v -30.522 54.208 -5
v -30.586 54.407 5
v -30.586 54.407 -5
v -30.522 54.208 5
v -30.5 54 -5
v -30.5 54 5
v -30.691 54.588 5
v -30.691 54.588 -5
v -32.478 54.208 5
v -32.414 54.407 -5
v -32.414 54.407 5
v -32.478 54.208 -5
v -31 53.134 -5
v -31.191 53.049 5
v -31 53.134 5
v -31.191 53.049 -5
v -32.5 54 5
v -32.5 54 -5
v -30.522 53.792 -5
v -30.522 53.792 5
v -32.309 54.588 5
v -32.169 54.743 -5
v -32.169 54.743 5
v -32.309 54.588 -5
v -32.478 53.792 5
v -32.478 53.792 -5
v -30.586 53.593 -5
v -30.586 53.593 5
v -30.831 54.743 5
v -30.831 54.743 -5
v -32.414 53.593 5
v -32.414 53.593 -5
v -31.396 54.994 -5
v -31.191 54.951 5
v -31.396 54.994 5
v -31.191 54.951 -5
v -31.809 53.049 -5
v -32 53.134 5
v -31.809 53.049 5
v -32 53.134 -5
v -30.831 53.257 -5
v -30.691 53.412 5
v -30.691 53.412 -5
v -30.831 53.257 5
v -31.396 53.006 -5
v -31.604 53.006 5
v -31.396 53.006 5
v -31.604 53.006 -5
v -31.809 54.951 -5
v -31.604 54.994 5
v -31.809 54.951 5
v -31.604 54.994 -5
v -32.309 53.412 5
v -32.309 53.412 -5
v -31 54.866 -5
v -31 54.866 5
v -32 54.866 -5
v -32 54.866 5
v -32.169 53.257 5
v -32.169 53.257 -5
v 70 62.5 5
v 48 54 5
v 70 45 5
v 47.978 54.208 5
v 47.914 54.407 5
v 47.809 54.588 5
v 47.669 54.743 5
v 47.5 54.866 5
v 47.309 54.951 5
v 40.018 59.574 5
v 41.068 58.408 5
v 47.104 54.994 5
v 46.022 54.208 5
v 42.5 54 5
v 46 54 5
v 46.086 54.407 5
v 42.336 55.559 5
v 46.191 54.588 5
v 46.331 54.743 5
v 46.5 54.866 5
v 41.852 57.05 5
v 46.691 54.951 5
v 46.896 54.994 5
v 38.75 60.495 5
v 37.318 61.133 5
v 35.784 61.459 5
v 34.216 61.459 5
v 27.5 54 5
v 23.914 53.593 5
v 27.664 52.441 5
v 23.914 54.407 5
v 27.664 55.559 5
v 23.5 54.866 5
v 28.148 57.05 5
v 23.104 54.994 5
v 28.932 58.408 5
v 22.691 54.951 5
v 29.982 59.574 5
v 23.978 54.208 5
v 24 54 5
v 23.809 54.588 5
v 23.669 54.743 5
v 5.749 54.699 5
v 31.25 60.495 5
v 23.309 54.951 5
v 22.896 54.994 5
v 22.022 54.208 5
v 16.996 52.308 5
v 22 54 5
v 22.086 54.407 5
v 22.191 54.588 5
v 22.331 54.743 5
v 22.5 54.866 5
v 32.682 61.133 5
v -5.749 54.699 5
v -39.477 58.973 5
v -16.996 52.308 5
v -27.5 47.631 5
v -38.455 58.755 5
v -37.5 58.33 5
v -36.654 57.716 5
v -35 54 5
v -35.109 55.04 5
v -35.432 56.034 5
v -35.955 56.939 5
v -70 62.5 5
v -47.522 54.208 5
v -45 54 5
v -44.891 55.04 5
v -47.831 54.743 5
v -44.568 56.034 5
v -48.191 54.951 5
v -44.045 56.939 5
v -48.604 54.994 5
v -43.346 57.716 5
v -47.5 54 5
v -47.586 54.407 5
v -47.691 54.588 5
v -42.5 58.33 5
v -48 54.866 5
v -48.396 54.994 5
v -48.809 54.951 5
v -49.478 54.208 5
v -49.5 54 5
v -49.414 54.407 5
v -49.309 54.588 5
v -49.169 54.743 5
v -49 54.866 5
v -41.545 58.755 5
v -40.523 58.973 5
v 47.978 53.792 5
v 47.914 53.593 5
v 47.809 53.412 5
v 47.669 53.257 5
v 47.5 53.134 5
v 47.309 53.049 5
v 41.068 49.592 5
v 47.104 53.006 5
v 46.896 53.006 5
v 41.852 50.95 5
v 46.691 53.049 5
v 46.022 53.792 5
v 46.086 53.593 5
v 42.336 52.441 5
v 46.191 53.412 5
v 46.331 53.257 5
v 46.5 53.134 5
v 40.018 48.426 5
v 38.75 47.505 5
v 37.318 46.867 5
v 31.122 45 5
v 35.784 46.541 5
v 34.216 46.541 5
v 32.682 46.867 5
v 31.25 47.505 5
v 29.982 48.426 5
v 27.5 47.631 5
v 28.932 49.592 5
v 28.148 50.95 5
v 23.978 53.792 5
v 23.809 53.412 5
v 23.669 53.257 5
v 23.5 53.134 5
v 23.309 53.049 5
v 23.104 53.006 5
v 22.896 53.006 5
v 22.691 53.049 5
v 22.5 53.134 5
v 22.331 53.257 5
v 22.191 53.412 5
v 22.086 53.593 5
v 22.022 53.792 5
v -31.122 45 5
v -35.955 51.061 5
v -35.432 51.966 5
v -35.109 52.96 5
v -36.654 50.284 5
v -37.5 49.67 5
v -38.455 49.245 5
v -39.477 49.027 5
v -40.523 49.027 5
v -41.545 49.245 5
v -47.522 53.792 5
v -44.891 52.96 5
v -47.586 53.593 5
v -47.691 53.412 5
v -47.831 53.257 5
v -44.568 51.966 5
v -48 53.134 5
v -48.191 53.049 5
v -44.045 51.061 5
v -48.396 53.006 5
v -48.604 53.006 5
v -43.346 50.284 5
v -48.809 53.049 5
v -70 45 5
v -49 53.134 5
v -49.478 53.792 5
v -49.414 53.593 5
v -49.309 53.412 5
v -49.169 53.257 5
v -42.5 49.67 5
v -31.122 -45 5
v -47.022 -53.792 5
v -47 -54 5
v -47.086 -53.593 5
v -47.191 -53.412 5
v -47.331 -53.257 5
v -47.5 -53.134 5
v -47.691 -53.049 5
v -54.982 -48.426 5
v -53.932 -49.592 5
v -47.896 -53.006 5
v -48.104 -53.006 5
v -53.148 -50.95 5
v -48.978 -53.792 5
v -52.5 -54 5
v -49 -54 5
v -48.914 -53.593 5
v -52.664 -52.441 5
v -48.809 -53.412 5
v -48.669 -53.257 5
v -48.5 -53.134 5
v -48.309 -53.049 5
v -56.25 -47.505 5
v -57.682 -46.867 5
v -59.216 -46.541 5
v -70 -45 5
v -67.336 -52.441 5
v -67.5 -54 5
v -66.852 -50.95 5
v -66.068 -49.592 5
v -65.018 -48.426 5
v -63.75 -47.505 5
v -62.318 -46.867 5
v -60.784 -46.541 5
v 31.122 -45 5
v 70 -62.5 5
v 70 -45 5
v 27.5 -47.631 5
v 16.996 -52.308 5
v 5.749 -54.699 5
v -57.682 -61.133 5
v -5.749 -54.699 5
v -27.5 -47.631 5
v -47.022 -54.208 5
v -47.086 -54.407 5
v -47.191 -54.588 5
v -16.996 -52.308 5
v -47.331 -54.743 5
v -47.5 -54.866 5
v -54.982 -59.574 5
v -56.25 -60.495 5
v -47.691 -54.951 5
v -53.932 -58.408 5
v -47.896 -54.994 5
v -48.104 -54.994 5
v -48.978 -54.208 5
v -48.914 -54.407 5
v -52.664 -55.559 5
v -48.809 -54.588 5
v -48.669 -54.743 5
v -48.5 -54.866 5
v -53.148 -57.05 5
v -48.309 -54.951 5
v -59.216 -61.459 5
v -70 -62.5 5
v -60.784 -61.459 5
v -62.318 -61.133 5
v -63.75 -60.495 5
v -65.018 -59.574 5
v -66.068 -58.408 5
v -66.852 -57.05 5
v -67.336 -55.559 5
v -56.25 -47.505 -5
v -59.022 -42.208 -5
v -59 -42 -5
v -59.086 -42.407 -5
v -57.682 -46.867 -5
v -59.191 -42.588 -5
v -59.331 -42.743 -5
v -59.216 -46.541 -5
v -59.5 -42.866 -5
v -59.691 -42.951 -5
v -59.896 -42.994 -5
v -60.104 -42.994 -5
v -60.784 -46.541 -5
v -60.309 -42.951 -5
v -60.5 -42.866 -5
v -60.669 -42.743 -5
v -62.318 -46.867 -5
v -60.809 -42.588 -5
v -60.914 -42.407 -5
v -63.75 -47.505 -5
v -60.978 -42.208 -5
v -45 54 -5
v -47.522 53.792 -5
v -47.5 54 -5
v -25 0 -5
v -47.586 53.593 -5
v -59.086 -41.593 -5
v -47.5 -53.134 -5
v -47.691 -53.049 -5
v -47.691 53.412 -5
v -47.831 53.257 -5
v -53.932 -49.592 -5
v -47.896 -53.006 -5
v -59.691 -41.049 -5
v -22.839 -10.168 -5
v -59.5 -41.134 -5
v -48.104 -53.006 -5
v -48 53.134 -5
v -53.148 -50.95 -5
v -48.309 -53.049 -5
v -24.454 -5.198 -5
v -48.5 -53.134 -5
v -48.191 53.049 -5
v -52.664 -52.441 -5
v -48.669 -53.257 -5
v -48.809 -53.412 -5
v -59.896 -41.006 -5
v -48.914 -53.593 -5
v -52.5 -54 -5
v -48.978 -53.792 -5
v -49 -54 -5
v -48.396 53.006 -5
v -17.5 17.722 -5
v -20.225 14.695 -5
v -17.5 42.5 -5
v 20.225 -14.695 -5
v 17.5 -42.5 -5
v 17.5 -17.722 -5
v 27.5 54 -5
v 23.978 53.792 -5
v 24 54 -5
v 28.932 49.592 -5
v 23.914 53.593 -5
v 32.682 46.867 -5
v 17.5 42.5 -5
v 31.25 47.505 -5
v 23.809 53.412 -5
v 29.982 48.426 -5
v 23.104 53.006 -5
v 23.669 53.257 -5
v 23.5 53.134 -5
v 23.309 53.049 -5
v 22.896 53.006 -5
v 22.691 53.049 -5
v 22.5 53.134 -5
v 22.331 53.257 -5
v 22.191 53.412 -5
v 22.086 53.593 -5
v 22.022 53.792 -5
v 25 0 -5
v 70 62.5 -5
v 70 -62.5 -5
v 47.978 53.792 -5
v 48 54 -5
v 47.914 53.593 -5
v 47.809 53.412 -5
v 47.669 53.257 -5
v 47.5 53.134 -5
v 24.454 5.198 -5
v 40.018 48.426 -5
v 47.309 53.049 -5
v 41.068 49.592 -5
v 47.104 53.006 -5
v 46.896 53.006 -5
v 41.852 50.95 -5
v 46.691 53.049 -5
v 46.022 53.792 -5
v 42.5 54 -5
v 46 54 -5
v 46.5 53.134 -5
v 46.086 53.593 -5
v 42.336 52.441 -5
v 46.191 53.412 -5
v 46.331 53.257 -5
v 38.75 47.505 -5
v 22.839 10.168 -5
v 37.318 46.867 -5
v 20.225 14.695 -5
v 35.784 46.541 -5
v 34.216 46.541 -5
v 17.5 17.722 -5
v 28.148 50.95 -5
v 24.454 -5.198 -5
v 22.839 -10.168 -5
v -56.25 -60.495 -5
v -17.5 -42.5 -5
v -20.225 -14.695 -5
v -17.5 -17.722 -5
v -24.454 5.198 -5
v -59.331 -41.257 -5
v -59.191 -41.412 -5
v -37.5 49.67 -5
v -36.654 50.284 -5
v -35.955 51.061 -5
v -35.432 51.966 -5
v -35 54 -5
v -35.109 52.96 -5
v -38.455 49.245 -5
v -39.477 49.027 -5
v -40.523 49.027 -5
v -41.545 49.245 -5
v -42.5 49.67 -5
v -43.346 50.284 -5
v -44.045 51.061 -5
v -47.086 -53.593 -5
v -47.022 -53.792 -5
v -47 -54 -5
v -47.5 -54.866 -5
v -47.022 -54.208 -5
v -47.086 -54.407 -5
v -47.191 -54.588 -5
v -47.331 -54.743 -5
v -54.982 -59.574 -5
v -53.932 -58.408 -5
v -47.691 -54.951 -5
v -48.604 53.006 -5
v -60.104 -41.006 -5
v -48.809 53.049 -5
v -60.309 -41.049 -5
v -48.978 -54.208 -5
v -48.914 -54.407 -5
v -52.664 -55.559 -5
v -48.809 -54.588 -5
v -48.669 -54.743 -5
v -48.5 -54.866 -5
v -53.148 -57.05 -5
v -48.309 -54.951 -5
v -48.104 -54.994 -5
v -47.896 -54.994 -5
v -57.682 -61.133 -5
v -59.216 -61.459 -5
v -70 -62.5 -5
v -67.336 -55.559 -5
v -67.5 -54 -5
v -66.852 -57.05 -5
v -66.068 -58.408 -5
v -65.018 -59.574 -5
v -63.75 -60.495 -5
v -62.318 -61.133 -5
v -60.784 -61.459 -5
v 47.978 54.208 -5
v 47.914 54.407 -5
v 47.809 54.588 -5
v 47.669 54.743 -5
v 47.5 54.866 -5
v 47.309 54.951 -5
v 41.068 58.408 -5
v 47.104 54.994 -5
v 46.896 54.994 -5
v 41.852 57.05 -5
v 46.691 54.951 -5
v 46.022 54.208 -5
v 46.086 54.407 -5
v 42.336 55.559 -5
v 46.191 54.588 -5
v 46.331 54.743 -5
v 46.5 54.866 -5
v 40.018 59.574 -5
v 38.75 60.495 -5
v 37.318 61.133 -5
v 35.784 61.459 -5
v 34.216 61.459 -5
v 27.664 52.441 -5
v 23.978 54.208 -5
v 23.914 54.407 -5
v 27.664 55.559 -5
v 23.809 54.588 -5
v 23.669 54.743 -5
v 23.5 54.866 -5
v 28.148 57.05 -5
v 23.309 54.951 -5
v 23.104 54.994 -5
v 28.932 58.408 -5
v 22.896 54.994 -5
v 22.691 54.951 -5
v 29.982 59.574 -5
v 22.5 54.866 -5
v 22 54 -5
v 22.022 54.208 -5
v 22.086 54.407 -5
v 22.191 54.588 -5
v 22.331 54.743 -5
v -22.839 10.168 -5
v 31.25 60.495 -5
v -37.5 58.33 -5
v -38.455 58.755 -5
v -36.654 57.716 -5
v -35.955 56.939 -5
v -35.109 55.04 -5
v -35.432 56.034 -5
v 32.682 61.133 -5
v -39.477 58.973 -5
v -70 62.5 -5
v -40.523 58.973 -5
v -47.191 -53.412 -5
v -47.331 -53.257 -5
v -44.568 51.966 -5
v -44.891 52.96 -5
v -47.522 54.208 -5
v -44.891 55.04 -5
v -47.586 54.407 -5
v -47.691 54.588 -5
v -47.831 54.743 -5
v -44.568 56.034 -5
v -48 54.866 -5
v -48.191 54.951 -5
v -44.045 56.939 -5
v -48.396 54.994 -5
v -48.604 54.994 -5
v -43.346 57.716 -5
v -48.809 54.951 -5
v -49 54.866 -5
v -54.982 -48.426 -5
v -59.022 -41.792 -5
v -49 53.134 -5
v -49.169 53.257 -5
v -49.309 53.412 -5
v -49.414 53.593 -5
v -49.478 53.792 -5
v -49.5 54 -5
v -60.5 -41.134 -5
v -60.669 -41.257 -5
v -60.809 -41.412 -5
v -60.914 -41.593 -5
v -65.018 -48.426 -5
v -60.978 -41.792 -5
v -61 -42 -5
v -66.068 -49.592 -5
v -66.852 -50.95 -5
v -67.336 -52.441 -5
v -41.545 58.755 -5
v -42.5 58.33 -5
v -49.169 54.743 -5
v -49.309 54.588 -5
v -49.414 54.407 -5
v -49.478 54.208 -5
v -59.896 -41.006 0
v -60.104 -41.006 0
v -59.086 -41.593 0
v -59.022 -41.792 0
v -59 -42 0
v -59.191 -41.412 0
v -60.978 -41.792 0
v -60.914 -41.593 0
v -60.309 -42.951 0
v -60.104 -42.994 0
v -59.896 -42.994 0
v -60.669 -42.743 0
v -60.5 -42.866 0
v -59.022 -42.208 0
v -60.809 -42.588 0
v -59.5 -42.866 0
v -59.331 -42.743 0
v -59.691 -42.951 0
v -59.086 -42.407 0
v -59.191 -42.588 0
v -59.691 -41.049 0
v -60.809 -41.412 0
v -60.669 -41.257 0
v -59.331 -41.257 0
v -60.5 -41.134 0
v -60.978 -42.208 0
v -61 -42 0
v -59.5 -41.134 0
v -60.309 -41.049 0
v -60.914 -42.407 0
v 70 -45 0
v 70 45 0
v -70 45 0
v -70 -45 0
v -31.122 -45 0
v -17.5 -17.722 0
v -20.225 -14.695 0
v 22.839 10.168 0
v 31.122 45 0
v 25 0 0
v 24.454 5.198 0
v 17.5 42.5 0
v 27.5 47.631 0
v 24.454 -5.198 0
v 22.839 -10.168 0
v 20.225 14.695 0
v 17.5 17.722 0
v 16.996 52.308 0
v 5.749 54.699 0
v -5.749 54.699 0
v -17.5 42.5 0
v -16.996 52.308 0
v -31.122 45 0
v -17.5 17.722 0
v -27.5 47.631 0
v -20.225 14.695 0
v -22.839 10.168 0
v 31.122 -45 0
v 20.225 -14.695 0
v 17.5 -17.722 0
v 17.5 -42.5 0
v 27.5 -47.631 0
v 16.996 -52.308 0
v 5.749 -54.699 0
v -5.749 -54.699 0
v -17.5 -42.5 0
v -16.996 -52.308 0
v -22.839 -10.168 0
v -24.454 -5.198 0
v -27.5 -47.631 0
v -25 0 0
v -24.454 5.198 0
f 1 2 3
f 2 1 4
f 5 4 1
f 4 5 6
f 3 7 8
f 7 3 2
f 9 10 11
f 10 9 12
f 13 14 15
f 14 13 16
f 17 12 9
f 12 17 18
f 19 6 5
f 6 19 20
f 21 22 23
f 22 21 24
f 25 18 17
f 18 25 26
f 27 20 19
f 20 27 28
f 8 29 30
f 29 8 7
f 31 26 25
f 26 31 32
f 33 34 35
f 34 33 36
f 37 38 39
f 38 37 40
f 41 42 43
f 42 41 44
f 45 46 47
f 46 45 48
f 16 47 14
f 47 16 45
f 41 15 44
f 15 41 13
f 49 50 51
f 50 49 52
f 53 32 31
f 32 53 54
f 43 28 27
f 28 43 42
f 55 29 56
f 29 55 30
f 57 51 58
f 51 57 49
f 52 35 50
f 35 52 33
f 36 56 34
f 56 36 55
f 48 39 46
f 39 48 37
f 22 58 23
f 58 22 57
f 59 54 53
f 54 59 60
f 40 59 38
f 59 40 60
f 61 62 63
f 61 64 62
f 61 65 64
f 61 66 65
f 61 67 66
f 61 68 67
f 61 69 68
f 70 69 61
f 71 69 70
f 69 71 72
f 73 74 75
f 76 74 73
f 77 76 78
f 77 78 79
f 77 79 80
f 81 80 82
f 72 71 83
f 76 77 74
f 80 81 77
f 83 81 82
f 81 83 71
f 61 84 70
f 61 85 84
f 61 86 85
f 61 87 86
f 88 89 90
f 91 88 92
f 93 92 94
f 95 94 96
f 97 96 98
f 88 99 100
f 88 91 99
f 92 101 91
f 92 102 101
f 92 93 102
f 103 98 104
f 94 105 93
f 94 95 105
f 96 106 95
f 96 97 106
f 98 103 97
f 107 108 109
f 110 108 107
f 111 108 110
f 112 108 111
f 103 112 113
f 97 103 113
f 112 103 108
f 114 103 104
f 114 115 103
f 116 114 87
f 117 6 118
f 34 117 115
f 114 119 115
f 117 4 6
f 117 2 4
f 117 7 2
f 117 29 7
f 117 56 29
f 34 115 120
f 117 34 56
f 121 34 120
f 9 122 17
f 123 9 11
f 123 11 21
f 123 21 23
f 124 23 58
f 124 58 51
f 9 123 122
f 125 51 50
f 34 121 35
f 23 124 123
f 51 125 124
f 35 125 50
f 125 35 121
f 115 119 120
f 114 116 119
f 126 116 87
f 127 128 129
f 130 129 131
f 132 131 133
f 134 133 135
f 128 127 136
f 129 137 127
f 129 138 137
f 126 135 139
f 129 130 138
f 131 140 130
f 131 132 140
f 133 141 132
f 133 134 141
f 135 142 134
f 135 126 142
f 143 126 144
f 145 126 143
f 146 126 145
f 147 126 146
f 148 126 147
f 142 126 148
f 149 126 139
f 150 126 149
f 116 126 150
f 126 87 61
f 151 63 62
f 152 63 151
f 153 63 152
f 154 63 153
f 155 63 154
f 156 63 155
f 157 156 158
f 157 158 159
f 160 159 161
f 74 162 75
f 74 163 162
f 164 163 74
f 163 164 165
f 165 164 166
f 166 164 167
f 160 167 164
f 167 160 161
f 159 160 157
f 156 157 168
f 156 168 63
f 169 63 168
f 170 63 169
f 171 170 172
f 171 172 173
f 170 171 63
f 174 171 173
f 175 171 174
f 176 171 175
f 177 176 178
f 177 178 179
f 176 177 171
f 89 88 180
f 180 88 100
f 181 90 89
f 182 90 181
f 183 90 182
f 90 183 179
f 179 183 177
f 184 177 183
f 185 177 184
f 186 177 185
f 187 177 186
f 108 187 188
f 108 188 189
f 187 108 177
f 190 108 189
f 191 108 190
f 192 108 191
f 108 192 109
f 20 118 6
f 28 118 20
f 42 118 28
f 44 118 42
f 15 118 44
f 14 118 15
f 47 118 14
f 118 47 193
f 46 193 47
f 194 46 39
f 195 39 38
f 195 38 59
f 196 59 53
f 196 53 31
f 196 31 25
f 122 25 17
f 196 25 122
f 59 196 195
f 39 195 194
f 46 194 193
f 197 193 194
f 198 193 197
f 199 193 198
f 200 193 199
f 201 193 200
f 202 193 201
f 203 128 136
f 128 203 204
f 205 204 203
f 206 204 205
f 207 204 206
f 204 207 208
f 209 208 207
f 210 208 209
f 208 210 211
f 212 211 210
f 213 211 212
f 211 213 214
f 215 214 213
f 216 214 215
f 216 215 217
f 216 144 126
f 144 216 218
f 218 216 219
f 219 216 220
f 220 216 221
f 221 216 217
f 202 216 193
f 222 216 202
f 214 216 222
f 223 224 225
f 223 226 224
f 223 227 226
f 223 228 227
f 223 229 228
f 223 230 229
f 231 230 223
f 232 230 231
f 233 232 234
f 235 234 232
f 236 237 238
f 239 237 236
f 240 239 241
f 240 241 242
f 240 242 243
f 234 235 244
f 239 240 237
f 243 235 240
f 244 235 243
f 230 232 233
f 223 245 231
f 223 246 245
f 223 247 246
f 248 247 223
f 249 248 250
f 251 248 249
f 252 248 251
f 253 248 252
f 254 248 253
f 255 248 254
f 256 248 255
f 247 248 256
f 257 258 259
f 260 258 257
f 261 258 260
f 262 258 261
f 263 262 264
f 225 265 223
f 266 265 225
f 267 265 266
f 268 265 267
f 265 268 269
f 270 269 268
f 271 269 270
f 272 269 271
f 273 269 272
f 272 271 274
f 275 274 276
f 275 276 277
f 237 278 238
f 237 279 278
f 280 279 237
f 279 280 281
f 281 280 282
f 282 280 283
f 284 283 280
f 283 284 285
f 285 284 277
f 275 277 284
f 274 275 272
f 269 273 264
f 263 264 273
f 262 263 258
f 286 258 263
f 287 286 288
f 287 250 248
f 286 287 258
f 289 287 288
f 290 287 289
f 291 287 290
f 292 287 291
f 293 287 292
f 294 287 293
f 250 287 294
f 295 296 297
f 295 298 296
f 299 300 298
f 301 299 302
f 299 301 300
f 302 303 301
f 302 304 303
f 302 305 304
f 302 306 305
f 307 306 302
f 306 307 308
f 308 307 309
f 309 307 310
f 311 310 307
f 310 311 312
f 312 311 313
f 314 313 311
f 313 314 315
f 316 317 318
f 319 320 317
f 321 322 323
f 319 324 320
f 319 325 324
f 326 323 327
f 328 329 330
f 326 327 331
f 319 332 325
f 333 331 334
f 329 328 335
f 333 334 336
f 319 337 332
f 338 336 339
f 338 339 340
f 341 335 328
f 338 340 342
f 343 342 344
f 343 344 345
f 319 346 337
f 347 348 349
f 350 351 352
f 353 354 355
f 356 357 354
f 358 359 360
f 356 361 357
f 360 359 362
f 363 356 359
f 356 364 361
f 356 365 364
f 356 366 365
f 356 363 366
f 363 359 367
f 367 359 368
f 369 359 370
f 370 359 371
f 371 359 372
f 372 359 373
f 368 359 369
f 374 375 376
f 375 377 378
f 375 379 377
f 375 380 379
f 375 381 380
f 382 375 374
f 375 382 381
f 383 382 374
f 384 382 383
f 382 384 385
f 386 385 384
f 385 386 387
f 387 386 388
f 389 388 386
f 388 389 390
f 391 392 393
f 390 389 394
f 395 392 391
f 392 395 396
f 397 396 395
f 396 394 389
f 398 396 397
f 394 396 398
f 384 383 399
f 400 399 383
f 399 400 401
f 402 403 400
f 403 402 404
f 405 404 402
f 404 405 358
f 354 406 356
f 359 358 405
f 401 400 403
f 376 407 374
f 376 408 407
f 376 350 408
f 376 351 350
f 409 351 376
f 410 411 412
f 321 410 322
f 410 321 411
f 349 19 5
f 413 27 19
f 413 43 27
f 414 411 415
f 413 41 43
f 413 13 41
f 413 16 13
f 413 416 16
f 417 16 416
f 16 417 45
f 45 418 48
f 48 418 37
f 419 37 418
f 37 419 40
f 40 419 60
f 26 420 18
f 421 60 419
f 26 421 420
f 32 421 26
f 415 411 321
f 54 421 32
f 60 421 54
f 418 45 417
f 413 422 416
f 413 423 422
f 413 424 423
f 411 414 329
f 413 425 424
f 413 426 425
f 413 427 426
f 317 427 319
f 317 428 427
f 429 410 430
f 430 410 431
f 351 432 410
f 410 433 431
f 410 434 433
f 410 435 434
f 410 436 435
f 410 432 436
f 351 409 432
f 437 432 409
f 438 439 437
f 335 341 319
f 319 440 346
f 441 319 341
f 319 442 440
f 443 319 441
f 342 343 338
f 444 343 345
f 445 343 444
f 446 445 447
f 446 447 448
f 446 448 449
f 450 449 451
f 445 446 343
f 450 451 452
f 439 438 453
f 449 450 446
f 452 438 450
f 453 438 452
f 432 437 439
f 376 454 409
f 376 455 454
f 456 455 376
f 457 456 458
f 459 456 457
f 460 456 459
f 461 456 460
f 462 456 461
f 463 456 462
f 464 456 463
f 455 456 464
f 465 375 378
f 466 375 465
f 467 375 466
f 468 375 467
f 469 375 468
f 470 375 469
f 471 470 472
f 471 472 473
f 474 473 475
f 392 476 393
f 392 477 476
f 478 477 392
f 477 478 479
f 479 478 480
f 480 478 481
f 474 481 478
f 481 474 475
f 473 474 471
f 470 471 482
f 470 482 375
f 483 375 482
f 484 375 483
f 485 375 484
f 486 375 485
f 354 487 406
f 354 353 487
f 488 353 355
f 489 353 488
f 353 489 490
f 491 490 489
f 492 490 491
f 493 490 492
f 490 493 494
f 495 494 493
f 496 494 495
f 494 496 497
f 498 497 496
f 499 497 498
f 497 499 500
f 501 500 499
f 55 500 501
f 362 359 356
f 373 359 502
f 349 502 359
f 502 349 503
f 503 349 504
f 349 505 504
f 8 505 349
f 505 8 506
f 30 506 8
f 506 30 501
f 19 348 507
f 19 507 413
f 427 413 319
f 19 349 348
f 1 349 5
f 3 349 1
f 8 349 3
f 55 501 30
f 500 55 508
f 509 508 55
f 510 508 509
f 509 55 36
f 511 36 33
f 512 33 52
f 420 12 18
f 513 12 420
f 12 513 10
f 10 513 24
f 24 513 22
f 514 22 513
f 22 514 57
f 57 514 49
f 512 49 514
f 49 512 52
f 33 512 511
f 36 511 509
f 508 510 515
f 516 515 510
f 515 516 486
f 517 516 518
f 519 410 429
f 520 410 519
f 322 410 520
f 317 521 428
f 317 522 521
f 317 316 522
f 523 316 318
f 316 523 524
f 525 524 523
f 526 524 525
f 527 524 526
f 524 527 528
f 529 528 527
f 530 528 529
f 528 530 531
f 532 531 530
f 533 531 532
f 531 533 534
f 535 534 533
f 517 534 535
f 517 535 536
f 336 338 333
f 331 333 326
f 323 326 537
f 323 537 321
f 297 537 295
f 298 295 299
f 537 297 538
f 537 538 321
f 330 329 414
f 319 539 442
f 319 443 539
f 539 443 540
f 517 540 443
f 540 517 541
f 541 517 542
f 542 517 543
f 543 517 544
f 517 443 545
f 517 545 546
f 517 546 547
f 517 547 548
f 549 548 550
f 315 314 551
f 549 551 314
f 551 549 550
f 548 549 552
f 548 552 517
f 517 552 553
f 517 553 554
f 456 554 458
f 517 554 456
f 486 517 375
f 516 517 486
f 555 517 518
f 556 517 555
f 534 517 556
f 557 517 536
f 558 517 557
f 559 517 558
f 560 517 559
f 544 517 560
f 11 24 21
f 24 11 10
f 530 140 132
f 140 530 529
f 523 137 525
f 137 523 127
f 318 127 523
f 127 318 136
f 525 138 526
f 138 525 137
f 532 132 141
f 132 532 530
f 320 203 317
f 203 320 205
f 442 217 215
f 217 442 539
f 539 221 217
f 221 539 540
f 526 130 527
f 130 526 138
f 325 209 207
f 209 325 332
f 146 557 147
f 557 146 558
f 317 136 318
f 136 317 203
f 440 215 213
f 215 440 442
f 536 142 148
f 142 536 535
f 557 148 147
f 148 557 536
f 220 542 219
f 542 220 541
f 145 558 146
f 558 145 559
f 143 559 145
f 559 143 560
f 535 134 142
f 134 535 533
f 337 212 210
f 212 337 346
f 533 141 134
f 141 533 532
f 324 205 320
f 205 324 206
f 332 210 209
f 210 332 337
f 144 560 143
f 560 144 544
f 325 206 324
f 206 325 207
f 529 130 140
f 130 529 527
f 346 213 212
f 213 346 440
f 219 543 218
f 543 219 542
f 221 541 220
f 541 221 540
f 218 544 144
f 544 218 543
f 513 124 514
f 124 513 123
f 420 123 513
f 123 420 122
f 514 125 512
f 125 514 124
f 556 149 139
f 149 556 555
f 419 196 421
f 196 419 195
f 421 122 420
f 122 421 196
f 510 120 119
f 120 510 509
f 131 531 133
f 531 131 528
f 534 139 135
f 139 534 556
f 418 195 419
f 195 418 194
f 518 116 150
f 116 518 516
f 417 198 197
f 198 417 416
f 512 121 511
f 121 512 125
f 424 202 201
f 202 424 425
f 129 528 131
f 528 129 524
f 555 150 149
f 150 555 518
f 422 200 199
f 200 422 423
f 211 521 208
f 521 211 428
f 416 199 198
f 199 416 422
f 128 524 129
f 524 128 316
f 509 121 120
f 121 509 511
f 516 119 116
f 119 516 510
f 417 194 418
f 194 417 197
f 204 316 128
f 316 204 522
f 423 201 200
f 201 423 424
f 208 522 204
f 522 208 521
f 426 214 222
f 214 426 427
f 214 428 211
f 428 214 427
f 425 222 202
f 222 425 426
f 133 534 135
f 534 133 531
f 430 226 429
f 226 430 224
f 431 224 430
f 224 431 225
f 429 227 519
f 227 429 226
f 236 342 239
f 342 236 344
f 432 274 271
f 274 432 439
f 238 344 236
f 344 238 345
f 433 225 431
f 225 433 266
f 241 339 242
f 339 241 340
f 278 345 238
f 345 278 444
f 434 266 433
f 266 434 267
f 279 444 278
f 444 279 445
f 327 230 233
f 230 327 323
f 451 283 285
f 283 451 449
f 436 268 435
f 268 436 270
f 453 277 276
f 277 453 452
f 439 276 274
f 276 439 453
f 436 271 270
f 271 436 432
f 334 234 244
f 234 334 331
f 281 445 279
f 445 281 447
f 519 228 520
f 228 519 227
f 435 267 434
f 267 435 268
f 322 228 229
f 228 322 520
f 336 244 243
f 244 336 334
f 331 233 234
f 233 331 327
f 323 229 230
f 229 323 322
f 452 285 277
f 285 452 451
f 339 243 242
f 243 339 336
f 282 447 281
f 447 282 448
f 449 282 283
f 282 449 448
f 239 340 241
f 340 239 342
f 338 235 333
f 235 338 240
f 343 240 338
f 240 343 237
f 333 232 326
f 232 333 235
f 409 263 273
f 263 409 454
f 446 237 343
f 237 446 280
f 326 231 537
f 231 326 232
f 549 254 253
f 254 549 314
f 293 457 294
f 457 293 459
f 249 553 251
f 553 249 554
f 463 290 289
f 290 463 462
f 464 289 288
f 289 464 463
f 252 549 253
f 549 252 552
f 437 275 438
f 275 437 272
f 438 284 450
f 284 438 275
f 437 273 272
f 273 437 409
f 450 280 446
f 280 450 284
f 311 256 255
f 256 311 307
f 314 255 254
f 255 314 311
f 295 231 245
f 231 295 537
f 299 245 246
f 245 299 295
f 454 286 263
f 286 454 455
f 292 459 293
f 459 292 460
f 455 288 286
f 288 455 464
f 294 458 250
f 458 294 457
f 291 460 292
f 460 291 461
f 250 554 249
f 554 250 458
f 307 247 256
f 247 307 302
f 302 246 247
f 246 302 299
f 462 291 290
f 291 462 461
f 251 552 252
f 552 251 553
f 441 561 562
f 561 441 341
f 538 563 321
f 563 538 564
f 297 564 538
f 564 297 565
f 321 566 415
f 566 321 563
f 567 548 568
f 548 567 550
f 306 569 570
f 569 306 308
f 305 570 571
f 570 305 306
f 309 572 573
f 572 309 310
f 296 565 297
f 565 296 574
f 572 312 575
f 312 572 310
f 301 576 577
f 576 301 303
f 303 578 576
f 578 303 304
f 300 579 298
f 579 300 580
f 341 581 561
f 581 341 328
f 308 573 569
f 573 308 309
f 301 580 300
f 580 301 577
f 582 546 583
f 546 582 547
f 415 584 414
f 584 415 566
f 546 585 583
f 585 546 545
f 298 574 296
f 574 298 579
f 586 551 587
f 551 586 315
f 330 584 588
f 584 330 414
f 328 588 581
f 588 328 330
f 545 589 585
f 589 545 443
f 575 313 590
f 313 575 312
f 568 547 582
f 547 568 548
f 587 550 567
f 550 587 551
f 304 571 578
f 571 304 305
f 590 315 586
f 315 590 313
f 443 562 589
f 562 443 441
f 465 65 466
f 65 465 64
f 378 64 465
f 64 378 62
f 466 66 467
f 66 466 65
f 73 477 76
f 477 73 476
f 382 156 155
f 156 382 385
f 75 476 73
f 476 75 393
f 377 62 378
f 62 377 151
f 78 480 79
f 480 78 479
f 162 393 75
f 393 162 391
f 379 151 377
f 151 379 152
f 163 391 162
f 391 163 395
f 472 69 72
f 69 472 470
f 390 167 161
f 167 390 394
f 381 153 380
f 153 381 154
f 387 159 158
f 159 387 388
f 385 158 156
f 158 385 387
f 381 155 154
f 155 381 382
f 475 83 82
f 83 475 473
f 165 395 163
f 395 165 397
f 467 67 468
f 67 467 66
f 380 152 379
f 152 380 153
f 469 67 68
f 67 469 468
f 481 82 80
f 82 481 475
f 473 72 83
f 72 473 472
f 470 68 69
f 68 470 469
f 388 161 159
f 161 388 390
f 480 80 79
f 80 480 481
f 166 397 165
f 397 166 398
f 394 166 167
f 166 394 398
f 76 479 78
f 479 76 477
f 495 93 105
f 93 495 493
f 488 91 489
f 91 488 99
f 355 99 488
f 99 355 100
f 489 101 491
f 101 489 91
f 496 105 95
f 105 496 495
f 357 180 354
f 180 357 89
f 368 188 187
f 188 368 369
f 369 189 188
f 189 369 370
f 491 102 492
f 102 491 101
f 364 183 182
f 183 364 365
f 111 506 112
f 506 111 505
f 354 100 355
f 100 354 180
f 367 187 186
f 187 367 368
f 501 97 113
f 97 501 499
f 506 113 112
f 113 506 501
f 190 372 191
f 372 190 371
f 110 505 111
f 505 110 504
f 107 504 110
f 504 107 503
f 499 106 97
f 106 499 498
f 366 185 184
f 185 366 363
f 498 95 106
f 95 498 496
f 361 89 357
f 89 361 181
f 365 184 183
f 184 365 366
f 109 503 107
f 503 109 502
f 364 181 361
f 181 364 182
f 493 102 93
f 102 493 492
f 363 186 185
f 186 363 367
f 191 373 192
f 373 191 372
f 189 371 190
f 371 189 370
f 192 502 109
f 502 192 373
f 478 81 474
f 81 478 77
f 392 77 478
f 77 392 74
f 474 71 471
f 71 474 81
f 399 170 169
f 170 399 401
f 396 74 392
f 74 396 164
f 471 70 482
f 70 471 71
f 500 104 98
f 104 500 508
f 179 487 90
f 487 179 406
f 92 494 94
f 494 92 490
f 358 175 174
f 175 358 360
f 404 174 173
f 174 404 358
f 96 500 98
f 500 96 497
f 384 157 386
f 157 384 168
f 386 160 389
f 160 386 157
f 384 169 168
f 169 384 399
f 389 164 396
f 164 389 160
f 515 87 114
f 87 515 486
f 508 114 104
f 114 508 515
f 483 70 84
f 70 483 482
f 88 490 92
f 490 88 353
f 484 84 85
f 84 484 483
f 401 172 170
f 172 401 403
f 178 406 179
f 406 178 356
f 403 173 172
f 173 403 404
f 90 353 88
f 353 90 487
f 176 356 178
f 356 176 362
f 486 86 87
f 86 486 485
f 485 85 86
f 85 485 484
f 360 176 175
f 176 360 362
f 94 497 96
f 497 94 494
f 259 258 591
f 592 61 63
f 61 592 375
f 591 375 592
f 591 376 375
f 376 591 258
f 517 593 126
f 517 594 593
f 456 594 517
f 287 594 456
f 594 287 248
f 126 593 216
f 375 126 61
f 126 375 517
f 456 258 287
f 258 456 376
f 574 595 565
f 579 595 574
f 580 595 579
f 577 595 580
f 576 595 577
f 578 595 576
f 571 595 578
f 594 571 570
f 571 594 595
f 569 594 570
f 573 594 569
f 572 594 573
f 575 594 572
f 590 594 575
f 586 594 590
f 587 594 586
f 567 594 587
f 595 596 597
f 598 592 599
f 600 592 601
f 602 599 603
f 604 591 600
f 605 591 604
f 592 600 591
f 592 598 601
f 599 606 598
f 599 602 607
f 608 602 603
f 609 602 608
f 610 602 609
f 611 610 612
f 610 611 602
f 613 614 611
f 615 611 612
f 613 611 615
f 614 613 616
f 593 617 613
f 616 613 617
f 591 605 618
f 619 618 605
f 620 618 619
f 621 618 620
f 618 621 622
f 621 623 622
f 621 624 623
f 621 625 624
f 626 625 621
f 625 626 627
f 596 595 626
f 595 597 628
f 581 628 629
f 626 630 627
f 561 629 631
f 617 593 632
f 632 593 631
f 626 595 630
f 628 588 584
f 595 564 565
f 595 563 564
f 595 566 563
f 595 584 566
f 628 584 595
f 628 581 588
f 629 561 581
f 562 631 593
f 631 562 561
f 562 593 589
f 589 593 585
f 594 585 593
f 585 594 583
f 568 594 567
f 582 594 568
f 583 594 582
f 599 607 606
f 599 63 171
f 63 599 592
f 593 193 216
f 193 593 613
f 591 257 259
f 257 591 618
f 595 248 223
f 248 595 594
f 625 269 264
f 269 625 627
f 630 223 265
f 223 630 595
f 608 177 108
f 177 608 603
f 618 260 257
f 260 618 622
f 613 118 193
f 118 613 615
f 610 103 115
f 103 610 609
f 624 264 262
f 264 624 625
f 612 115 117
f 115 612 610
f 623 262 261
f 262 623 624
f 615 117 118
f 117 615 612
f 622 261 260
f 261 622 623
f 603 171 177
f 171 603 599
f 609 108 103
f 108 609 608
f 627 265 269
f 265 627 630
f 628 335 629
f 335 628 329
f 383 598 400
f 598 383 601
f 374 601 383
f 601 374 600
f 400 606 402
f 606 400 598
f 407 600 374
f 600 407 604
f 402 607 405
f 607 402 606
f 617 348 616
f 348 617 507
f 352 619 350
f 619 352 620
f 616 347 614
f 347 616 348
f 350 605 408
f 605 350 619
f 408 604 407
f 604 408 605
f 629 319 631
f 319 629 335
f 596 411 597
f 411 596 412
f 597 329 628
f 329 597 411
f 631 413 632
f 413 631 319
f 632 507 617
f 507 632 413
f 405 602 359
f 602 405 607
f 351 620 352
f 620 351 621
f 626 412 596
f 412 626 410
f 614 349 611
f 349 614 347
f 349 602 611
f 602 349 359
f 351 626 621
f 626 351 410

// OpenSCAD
// Multi_Tissue_Recording Stage v3
// Jack F. Murphy <me@jackmurphy.nyc>
// https://github.com/teammurphy/Multi_Tissue_CAD

// Smoothness
$fn = 30;

// Stage Dimensions
stage_len=140;
stage_width=125;
stage_thickness=10;

// Hole Dimensions
hole_diam=50;
hole_len=85;
hole_width=35;
lin_bearing=15;
threaded=10;
pilot_rad=2;

difference(){
  translate([0, 0, 0])  
    cube([stage_len, stage_width, stage_thickness], center=true);
    
  // Create lower level
  translate([0, 0, 5]) 
    cube([stage_len, 90, stage_thickness], center=true);
  
  translate([0, 0, 5])
    cylinder(d=110, h=stage_thickness, center=true);
    
  // Circular Gap
  translate([0, 0, 0])
    cylinder(d=hole_diam, h=stage_thickness, center=true);

  // Rectangular Gap
  translate([0, 0, 0])  
    cube([hole_width, hole_len, stage_thickness], center=true);

  // Threaded Hole
  translate([-40, 54, 0]){
    cylinder(d=threaded, h=stage_thickness, center=true);
    pilot_holes(8.5);
  }

  // Linear Bearing Holes
  translate([-60, -54, 0]) {
    cylinder(d=lin_bearing, h=stage_thickness, center=true);
    pilot_holes(12);
    translate([0, 12, 0])
        cylinder(d=pilot_rad, h=stage_thickness, center=true);
  }
  translate([35, 54, 0]) {
    cylinder(d=lin_bearing, h=stage_thickness, center=true);
    pilot_holes(12);
  }

}

// Create 2
module pilot_holes(radius){
  translate([radius, 0, 0])
    cylinder(d=pilot_rad, h=stage_thickness, center=true);
  translate([-1*radius, 0, 0])
    cylinder(d=pilot_rad, h=stage_thickness, center=true);
}
